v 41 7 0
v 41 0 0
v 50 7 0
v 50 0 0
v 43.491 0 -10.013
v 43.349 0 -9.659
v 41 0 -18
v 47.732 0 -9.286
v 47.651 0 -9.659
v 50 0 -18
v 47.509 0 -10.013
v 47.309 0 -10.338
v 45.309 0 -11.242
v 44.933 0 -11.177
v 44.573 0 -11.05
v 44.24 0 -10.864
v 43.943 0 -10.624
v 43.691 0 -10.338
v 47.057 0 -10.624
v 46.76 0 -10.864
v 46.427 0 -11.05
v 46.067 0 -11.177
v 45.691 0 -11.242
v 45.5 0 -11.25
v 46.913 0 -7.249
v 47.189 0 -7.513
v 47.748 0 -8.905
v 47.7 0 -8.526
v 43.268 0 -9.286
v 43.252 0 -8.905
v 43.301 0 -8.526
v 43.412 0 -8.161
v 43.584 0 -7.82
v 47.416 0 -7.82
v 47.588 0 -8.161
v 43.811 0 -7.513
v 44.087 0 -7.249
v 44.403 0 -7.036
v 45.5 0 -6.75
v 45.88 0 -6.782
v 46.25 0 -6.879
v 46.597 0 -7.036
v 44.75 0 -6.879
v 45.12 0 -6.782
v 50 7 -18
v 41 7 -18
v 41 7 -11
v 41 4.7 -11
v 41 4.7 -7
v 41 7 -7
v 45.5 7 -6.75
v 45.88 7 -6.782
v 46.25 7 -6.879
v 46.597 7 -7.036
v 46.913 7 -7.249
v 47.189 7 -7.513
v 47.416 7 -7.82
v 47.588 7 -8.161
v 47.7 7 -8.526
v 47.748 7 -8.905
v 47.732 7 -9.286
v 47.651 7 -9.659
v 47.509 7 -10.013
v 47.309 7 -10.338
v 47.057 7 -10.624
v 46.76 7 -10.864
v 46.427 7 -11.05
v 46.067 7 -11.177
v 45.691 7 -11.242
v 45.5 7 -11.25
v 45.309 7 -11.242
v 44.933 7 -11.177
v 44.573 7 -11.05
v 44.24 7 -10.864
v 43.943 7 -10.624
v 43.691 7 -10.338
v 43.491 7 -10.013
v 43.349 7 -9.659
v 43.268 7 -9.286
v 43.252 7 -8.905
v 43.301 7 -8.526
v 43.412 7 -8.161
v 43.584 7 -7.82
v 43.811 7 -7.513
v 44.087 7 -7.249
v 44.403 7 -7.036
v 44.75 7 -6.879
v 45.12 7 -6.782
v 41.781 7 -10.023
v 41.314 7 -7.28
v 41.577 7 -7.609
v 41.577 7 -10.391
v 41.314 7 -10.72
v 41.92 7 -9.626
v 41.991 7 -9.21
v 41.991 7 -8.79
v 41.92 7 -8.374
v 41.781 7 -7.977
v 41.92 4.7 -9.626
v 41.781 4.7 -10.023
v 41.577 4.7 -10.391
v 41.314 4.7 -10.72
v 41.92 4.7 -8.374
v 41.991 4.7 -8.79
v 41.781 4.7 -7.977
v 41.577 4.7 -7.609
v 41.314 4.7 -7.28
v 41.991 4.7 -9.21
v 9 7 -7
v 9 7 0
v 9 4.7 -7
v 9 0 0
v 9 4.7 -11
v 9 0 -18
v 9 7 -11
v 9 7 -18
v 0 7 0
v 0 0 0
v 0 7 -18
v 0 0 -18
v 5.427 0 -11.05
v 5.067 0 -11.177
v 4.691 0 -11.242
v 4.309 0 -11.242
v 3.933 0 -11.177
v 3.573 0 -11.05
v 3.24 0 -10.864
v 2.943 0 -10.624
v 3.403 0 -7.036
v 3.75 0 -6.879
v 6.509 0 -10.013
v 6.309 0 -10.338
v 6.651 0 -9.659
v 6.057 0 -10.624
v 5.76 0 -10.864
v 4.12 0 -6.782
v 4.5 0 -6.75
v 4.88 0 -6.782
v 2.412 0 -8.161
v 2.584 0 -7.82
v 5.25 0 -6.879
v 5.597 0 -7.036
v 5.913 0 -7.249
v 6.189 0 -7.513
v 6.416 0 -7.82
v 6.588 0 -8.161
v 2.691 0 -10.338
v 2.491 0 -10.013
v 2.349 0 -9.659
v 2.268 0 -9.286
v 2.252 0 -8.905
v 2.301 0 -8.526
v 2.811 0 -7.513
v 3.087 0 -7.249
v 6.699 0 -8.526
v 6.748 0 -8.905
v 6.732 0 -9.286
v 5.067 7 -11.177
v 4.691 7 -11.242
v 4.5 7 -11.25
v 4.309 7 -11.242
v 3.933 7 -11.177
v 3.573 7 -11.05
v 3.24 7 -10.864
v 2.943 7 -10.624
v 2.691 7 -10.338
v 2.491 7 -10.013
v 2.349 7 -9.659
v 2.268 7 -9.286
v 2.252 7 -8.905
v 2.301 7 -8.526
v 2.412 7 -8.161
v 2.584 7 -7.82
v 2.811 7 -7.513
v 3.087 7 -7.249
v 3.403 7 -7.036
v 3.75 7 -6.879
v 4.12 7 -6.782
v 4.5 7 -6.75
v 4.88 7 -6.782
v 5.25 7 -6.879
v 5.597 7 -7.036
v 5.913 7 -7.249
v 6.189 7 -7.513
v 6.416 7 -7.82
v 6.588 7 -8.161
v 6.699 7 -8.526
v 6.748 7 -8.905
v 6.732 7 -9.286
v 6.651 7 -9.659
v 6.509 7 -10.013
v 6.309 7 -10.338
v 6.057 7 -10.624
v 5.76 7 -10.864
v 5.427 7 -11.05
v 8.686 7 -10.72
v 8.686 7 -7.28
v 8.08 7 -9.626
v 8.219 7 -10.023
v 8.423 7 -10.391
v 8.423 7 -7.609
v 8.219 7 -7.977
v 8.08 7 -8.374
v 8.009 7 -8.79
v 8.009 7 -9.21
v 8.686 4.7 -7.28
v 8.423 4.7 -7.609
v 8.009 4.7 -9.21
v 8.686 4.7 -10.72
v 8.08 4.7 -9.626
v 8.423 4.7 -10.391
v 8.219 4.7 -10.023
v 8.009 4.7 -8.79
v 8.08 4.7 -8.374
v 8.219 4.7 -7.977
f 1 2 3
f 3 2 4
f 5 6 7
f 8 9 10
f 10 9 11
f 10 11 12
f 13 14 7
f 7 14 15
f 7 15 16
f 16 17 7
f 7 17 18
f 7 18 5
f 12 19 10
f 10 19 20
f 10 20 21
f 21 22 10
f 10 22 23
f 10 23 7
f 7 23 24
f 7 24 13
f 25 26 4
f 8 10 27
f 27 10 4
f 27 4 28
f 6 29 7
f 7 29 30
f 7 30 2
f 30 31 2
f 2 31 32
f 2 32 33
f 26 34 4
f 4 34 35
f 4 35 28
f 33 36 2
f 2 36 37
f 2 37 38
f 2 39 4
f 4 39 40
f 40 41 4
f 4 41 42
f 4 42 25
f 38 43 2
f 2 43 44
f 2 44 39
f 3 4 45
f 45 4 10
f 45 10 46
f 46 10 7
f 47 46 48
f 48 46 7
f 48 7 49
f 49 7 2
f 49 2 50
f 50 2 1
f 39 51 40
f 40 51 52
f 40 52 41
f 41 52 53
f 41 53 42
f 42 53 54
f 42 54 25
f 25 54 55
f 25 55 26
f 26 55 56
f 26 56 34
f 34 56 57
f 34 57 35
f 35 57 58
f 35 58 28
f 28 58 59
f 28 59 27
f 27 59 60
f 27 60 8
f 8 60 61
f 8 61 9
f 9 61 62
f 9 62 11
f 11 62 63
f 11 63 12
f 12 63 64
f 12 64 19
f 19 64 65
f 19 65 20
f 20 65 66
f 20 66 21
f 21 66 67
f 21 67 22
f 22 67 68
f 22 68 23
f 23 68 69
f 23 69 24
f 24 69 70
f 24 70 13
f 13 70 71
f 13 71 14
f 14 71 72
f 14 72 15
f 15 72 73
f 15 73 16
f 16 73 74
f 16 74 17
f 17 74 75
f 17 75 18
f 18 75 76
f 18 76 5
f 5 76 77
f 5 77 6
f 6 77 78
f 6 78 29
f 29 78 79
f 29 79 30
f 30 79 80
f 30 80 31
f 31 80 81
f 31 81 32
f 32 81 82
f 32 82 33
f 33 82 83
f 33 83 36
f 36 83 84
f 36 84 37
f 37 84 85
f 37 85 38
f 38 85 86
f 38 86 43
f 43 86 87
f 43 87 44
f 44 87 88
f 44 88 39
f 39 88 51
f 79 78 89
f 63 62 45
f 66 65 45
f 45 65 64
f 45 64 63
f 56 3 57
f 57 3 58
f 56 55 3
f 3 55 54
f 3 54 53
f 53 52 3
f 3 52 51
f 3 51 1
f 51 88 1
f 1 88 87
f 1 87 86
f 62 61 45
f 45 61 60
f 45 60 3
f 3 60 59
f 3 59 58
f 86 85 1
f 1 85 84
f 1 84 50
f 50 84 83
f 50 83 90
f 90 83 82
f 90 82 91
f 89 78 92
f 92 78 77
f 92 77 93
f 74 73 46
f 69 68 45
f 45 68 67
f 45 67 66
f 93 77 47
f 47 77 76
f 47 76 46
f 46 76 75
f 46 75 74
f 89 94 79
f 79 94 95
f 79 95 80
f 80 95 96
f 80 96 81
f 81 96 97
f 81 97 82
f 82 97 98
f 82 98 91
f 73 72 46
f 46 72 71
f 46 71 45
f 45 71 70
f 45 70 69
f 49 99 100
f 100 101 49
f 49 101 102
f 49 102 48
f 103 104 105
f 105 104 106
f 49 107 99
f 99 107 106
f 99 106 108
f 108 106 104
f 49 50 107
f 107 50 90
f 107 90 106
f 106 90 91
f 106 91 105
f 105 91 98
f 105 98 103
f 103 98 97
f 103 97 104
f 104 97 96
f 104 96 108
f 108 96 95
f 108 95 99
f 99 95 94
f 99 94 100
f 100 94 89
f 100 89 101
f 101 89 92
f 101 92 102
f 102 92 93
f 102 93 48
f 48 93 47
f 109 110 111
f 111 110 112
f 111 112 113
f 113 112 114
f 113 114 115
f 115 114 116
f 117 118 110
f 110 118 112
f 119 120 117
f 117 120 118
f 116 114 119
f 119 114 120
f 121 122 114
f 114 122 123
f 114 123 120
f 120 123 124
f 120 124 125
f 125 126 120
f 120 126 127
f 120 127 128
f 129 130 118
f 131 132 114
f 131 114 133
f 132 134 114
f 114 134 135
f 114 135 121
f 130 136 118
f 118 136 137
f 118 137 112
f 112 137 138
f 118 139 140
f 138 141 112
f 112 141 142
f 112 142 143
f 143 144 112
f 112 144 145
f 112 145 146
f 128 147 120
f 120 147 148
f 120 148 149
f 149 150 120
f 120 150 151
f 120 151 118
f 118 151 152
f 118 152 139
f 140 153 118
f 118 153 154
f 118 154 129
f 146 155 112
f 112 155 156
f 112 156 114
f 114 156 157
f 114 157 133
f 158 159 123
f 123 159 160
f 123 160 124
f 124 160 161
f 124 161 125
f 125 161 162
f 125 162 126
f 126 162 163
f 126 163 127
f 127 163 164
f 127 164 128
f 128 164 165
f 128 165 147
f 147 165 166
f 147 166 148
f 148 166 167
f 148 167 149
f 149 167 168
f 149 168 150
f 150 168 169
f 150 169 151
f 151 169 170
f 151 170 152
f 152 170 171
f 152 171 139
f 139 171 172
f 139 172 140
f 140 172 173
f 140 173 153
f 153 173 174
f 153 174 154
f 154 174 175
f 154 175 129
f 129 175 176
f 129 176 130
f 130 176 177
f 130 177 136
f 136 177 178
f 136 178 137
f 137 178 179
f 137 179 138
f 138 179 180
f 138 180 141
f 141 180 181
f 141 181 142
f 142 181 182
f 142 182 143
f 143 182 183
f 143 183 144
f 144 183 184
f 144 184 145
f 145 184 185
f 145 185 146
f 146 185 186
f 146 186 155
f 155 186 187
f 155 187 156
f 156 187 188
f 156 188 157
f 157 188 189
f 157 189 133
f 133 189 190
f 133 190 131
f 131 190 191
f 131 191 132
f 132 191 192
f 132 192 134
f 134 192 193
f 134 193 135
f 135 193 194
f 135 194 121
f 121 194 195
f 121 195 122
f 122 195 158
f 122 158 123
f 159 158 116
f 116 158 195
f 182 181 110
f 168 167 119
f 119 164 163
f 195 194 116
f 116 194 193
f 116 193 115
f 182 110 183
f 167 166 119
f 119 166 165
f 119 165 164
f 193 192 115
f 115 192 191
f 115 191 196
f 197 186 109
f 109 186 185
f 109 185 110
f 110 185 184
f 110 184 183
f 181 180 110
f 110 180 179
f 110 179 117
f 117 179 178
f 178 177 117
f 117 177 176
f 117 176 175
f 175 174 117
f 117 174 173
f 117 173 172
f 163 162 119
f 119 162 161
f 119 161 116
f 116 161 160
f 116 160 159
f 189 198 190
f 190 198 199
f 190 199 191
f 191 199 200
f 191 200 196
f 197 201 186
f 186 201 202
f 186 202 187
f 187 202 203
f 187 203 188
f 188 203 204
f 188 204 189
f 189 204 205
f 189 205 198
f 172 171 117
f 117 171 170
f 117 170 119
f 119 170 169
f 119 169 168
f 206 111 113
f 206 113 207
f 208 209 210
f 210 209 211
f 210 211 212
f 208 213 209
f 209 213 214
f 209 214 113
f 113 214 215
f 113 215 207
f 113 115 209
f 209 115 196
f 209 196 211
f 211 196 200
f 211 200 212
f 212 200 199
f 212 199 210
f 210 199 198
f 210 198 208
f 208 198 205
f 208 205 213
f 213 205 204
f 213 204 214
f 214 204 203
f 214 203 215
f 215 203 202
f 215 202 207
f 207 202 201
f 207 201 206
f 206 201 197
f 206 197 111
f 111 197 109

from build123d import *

# Parameters (mm, degrees)
SKETCH1_W           = 50
SKETCH1_H           = 18
BOSS_EXTRUDE2_DEPTH = 22
SKETCH4_W           = 32
SKETCH4_H           = 14
CUT_EXTRUDE1_DEPTH  = 58.515215378
SKETCH5_W           = 23
SKETCH5_H           = 18
CUT_EXTRUDE3_DEPTH  = 13
SKETCH7_W           = 50
SKETCH7_H           = 8.235017036
CUT_EXTRUDE4_DEPTH  = 58.515215378
SKETCH9_R           = 1
CUT_EXTRUDE6_DEPTH  = 54.600373133
SKETCH10_R          = 2.25
CUT_EXTRUDE7_DEPTH  = 55.895125066
CUT_EXTRUDE8_DEPTH  = 55.895125066
SKETCH14_R          = 2.5
CUT_EXTRUDE10_DEPTH = 2.3


with BuildPart() as part:
    # Sketch1 → Boss-Extrude2 (new body)
    with BuildSketch(Plane(origin=(0, 0, 0), x_dir=(1, 0, 0), z_dir=(0, 1, 0))):
        with Locations((25, 9)):
            Rectangle(SKETCH1_W, SKETCH1_H)
    extrude(amount=BOSS_EXTRUDE2_DEPTH)

    # Sketch4 → Cut-Extrude1 (cut, through all)
    with BuildSketch(Plane.XY):
        with Locations((25, 0)):
            Rectangle(SKETCH4_W, SKETCH4_H)
    extrude(amount=-CUT_EXTRUDE1_DEPTH, mode=Mode.SUBTRACT)

    # Sketch5 → Cut-Extrude3 (cut)
    with BuildSketch(Plane(origin=(0, 0, -18), x_dir=(-1, 0, 0), z_dir=(0, 0, -1))):
        with Locations((-25, 7)):
            Rectangle(SKETCH5_W, SKETCH5_H)
    extrude(amount=-CUT_EXTRUDE3_DEPTH, mode=Mode.SUBTRACT)

    # Sketch7 → Cut-Extrude4 (cut, through all)
    with BuildSketch(Plane(origin=(0, 0, -18), x_dir=(-1, 0, 0), z_dir=(0, 0, -1))):
        with Locations((-25, 17.882491482)):
            Rectangle(SKETCH7_W, SKETCH7_H)
    extrude(amount=-CUT_EXTRUDE4_DEPTH, mode=Mode.SUBTRACT)

    # Sketch9 → Cut-Extrude6 (cut, through all)
    with BuildSketch(Plane.XZ.offset(-7)):
        with Locations(Location((12, -11.5, 0), (0, 0, 270))):
            Circle(SKETCH9_R)
        with Locations(Location((38, -11.5, 0), (0, 0, 90))):
            Circle(SKETCH9_R)
    extrude(amount=-CUT_EXTRUDE6_DEPTH, mode=Mode.SUBTRACT)

    # Sketch10 → Cut-Extrude7 (cut, through all)
    with BuildSketch(Plane(origin=(0, 13.764982964, 0), x_dir=(1, 0, 0), z_dir=(0, 1, 0))):
        with Locations(Location((4.5, 9, 0), (0, 0, 270))):
            Circle(SKETCH10_R)
        with Locations(Location((45.5, 9, 0), (0, 0, 90))):
            Circle(SKETCH10_R)
    extrude(amount=-CUT_EXTRUDE7_DEPTH, mode=Mode.SUBTRACT)

    # Sketch11 → Cut-Extrude8 (cut, through all)
    with BuildSketch(Plane.XY):
        Polygon((9, 7), (50, 7), (50, 13.764982964), (0, 13.764982964), (0, 7), align=None)
    extrude(amount=-CUT_EXTRUDE8_DEPTH, mode=Mode.SUBTRACT)


with BuildPart() as cut_extrude8_piece_1:
    # of the separate pieces the step leaves, piece 1, a body of its own (cut_extrude8_pieces)
    add(part.part.solids().sort_by_distance((41, 0, 0))[0])


with BuildPart() as cut_extrude8_piece_2:
    # of the separate pieces the step leaves, piece 2, a body of its own (cut_extrude8_pieces)
    add(part.part.solids().sort_by_distance((0, 0, 0))[0])


with BuildPart() as cut_extrude10_tool:
    # Sketch14 → Cut-Extrude10 (new body)
    with BuildSketch(Plane(origin=(0, 7, 0), x_dir=(1, 0, 0), z_dir=(0, 1, 0))):
        with Locations((39.5, 9)):
            Circle(SKETCH14_R)
        with Locations((10.5, 9)):
            Circle(SKETCH14_R)
    extrude(amount=-CUT_EXTRUDE10_DEPTH)


with BuildPart() as cut_extrude8_piece_1_1:
    add(cut_extrude8_piece_1.part)

    # Cut-Extrude10: cut by cut_extrude10_tool
    add(cut_extrude10_tool.part, mode=Mode.SUBTRACT)


with BuildPart() as cut_extrude8_piece_2_1:
    add(cut_extrude8_piece_2.part)

    # Cut-Extrude10: cut by cut_extrude10_tool
    add(cut_extrude10_tool.part, mode=Mode.SUBTRACT)


solid = Compound([cut_extrude8_piece_1_1.part, cut_extrude8_piece_2_1.part])
